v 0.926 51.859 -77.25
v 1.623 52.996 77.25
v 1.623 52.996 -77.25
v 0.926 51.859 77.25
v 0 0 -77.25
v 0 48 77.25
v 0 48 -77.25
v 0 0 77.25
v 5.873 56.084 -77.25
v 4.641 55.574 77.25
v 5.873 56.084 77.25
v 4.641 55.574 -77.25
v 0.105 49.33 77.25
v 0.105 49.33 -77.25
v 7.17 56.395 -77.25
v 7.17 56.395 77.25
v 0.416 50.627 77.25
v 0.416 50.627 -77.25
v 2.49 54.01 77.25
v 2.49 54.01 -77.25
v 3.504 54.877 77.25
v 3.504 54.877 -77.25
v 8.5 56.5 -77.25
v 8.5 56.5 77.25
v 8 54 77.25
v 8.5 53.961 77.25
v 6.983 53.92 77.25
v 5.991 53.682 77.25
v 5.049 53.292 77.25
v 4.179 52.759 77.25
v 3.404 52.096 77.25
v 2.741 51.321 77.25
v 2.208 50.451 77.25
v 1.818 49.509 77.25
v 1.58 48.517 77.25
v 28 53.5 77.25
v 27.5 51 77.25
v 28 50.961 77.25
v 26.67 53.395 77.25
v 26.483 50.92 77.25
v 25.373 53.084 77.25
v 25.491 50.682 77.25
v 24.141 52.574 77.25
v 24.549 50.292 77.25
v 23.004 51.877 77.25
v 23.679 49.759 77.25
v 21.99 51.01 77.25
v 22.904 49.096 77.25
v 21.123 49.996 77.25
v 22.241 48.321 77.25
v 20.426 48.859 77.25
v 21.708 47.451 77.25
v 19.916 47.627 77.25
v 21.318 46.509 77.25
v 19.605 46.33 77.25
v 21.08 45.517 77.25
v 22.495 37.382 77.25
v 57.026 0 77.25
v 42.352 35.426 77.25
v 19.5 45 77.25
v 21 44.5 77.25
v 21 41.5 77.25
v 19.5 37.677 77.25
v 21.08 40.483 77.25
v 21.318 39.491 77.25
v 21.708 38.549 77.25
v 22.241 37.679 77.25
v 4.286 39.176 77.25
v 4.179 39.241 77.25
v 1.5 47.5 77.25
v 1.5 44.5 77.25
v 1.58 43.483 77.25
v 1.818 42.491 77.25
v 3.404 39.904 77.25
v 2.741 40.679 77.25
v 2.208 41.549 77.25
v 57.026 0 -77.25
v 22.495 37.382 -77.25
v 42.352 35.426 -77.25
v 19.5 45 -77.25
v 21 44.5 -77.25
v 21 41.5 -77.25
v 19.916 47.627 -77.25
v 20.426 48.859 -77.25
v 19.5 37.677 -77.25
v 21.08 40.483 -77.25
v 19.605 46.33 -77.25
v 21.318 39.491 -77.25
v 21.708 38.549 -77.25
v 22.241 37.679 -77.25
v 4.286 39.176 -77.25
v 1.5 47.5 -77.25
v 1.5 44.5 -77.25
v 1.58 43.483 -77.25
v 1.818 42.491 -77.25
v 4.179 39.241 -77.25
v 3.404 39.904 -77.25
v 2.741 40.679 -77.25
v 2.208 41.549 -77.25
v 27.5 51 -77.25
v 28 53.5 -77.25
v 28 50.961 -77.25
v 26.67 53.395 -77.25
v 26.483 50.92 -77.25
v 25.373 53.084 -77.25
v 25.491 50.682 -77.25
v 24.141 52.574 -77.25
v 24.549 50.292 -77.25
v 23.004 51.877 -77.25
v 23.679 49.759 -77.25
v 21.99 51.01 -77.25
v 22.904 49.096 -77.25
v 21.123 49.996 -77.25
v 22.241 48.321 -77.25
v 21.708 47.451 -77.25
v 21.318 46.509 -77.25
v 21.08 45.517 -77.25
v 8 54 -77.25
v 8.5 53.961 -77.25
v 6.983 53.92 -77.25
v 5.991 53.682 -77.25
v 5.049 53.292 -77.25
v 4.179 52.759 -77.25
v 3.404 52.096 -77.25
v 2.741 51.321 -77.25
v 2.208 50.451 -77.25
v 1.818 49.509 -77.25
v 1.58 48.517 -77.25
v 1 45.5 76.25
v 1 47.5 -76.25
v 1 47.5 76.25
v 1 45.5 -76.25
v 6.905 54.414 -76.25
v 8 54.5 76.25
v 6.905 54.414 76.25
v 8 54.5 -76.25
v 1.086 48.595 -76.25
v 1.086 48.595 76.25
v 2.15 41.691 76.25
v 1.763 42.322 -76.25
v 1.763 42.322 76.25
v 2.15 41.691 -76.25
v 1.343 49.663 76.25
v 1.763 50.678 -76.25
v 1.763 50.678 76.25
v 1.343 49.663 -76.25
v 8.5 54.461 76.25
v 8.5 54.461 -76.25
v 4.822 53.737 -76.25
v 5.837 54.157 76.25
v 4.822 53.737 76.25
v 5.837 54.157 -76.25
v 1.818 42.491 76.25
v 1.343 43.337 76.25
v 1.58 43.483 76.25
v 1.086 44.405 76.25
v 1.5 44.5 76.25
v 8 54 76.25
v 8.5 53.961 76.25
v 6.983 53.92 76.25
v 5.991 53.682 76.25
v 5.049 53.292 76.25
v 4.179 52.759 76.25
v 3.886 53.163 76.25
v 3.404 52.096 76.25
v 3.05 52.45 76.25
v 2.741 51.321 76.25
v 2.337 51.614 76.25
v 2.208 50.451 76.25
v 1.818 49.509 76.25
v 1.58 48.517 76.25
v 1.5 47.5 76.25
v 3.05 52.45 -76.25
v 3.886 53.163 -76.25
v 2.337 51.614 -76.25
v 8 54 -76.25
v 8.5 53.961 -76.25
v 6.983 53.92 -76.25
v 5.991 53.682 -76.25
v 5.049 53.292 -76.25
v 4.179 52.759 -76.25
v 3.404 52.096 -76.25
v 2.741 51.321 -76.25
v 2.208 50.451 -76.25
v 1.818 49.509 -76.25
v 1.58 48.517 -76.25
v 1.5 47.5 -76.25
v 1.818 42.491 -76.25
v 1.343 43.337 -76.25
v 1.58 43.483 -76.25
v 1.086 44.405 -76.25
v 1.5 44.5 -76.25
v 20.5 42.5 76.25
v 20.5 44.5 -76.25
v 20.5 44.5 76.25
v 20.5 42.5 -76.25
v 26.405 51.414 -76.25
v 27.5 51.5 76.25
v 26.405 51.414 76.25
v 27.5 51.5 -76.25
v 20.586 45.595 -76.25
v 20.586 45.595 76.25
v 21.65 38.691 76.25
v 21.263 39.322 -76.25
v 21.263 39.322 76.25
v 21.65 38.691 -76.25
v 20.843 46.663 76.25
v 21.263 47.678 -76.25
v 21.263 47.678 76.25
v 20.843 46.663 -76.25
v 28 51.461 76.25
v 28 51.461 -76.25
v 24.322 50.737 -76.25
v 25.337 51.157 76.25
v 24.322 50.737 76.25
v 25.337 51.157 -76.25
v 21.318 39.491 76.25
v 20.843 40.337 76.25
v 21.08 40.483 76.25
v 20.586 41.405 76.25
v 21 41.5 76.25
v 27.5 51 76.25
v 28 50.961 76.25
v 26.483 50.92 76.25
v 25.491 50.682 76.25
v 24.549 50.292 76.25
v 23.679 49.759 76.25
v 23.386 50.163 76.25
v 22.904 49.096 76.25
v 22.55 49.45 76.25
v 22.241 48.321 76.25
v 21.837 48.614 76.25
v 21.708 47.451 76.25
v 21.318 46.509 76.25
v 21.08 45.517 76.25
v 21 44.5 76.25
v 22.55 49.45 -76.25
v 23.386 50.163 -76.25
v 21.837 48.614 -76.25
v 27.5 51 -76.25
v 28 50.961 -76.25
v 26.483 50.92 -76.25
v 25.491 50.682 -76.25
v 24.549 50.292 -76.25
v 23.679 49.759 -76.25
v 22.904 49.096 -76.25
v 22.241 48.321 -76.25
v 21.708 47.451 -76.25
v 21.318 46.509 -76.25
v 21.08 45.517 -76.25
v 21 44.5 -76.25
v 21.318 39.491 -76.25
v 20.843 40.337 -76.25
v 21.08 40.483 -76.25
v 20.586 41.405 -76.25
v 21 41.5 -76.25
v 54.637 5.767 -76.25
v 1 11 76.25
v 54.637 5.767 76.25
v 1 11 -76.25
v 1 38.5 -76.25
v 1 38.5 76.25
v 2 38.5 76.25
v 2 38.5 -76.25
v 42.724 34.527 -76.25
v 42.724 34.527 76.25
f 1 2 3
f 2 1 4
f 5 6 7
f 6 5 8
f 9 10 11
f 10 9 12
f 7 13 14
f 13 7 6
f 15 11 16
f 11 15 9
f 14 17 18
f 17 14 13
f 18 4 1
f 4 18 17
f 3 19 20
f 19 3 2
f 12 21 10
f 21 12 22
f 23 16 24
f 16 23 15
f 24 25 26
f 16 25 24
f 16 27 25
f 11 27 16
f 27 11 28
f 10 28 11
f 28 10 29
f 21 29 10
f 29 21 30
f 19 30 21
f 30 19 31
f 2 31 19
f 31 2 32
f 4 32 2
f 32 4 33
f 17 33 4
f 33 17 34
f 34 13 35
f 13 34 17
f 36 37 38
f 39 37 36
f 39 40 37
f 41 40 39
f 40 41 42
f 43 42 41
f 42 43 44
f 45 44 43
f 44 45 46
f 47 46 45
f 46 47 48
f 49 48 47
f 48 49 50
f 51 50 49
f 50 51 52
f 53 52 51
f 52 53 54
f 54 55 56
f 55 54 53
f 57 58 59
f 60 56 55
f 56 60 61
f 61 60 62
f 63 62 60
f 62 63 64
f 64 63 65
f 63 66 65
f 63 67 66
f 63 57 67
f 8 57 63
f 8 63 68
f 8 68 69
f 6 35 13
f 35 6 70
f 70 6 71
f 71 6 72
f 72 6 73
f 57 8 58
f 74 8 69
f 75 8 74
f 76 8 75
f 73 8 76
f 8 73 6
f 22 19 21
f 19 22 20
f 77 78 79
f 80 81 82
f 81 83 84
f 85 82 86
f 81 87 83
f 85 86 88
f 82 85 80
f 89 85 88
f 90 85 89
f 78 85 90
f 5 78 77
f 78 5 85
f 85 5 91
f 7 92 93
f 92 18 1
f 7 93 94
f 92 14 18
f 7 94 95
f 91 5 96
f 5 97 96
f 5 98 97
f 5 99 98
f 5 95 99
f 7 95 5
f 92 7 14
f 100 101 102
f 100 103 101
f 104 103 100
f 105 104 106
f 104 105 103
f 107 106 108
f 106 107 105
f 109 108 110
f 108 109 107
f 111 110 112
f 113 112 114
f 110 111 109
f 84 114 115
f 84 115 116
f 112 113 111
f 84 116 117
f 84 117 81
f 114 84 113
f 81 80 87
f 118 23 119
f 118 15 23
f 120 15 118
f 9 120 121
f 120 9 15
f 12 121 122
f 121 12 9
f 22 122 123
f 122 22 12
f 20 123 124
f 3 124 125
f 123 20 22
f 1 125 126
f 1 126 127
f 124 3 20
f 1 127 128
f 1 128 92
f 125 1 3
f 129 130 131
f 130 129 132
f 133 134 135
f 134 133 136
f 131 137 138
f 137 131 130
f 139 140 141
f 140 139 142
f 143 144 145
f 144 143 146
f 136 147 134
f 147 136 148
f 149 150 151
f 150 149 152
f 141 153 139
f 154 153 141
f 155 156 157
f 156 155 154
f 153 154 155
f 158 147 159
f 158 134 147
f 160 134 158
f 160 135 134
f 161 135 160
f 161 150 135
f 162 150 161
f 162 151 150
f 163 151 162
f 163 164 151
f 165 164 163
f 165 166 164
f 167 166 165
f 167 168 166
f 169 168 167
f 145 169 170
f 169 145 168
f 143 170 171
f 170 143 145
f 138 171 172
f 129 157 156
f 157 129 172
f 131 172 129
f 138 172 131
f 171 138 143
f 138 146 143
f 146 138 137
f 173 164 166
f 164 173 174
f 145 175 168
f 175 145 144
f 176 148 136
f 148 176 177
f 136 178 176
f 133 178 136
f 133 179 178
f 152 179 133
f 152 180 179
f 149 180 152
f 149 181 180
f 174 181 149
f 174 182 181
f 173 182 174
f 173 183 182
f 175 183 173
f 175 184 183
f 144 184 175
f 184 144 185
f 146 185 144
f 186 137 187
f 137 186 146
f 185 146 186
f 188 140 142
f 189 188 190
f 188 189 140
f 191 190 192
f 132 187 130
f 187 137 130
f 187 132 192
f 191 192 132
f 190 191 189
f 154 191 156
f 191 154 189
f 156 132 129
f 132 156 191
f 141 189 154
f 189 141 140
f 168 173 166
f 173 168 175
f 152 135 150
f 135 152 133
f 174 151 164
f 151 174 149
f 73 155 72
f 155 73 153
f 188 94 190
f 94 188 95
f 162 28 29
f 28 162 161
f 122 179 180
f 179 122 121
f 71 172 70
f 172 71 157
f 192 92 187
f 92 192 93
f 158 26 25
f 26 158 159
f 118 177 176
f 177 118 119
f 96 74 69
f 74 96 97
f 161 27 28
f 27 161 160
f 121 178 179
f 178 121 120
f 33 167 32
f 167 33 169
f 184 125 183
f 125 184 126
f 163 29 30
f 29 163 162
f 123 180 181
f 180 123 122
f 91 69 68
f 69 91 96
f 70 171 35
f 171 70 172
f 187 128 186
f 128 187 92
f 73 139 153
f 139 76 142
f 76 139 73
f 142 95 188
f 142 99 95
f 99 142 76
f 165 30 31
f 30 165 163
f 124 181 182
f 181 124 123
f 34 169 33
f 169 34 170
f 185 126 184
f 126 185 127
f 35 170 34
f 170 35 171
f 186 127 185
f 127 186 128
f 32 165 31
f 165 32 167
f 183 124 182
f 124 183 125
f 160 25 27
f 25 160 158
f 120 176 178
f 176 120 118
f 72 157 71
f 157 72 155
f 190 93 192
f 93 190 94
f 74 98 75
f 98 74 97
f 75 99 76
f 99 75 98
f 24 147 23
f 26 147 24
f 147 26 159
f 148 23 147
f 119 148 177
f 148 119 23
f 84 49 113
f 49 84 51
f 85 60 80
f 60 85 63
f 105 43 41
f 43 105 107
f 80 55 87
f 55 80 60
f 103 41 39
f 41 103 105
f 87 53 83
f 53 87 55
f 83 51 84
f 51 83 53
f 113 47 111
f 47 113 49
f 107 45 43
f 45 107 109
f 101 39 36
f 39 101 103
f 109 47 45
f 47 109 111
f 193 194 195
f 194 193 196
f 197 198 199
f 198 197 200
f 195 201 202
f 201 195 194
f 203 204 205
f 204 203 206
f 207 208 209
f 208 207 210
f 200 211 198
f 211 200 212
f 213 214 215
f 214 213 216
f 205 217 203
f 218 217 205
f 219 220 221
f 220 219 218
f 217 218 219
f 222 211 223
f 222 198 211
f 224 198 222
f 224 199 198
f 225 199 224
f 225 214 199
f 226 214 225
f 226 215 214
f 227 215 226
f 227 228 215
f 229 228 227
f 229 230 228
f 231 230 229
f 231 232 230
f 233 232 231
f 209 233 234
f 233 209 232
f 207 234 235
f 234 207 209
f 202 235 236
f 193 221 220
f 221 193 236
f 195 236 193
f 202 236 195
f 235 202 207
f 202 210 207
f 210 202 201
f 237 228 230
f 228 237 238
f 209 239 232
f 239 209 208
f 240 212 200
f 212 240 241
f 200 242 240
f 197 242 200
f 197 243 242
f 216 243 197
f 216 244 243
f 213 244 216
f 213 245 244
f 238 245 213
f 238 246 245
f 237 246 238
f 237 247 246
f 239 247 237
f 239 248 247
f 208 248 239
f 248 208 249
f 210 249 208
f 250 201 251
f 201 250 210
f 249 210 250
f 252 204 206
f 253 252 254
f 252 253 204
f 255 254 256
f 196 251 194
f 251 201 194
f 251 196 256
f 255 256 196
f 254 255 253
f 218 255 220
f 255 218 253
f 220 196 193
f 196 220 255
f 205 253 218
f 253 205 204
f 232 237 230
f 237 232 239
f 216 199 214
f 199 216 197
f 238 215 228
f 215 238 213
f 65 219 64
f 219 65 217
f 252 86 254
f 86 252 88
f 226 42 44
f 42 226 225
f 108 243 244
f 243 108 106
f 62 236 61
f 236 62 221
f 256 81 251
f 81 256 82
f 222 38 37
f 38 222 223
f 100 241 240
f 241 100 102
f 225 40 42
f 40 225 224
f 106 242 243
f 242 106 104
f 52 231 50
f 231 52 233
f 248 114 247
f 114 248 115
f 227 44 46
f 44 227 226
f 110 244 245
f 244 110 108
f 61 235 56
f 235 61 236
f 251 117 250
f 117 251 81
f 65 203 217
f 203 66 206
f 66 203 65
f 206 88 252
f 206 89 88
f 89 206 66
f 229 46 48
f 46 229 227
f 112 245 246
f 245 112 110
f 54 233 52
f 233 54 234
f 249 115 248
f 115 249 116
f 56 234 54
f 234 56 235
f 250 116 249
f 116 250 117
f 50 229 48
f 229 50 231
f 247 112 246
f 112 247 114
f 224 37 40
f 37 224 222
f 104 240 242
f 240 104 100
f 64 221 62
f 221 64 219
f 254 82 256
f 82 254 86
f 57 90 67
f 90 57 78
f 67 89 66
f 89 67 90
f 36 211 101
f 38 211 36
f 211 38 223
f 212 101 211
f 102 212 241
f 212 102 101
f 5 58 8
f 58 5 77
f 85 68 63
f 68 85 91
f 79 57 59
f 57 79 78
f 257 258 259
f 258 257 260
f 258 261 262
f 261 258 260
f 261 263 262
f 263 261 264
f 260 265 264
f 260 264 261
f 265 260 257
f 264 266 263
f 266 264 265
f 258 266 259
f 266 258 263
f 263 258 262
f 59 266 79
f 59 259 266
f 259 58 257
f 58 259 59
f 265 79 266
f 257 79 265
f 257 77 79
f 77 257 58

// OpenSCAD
// Wall Mounted Multi Card Holder Extention
// By Brian Khuu 2022-04-22
// Dev Note: Originally for businesscard, but modified for OffersAndNeeds 3D printed wall
$fn = 40;

print_layer_height = 0.2; //< This is the value you used when printing the main holder. This will indicate the amount of gap needed for the mounting slot

// Index Card
// 76 x 127mm (More like 126mm width when measured)
businesscard_width = 152.0+0.5; // 127mm (Plus 0.5 tol)
businesscard_height = 102.0+0.5; // 76mm (add 0.5mm tol)
businesscard_thickness = 2.5; // 0.25mm for thin paper cards. 0.8mm for thick plastic cards. We need to add extra thickness to account for layer droop

// Holder
wall_spacing = 2;
wall_card_grip = 20;

// Calc
wall_base = print_layer_height*3+0.1;
wall_top = print_layer_height*3+0.1;
wall_height = wall_base + businesscard_thickness + wall_top*2;

// Main Holder
holder_thickness = 1.0;
holder_slot_depth = businesscard_thickness*11; // 10 business cards (1 businesscard tolerance)
holder_slot_shift = 10;

// Pen Holder
penHolder_thickness = 1;
penHolder_pendia = 13;

module penholder() {
    intersection()
    {

        penHolder_outerdia = penHolder_pendia+penHolder_thickness*2+2;
        penHolder_outerGripDia = penHolder_pendia;
        penHolder_innerdia = penHolder_pendia+1;
        difference()
        {
            hull()
            {
                translate([0,holder_slot_depth+holder_thickness*2+holder_slot_shift,penHolder_outerdia/2])
                    rotate([0,90,0])
                        cylinder(d=penHolder_outerdia, h=(businesscard_width+holder_thickness*2), center=true);
                translate([0,holder_slot_depth+holder_thickness*2+holder_slot_shift+penHolder_outerdia/2,penHolder_outerdia/2])
                    rotate([0,90,0])
                        cylinder(d=penHolder_outerdia, h=(businesscard_width+holder_thickness*2), center=true);
            }
            hull()
            {
                translate([0,holder_slot_depth+holder_thickness*2+holder_slot_shift+penHolder_innerdia/2+penHolder_thickness-2,penHolder_innerdia/2+penHolder_thickness])
                    rotate([0,90,0])
                        cylinder(d=penHolder_innerdia, h=businesscard_width, center=true);
                translate([0,holder_slot_depth+holder_thickness*2+holder_slot_shift+penHolder_innerdia/2+penHolder_thickness,penHolder_innerdia/2+penHolder_thickness])
                    rotate([0,90,0])
                        cylinder(d=penHolder_innerdia, h=businesscard_width, center=true);
            }
            hull()
            {
                translate([0,holder_slot_depth+holder_thickness*2+holder_slot_shift+penHolder_innerdia/2+penHolder_thickness-3,penHolder_innerdia/2+penHolder_thickness])
                    rotate([0,90,0])
                        cylinder(d=penHolder_outerGripDia, h=businesscard_width+holder_thickness*2+0.1, center=true);
                translate([0,holder_slot_depth+holder_thickness*2+holder_slot_shift+penHolder_innerdia/2+penHolder_thickness,penHolder_innerdia/2+penHolder_thickness])
                    rotate([0,90,0])
                        cylinder(d=penHolder_outerGripDia, h=businesscard_width+holder_thickness*2+0.1, center=true);
            }
        }
        translate([0,holder_slot_depth+holder_thickness*2+holder_slot_shift+penHolder_thickness,penHolder_outerdia/4])
        cube([businesscard_width+holder_thickness*2,penHolder_outerdia*2,penHolder_outerdia/2],center=true);
    }

}

color("SaddleBrown")
rotate([0,90,0])
difference()
{
    // Bulk
    union()
    {
        hull()
        {
            translate([-(businesscard_width+holder_thickness*2)/2, 0, businesscard_height-holder_thickness])
                cube([(businesscard_width+holder_thickness*2), holder_slot_depth+holder_thickness*2, 1]);
            translate([-(businesscard_width+holder_thickness*2)/2, 0, 0])
                cube([(businesscard_width+holder_thickness*2), holder_slot_depth+holder_thickness*2+holder_slot_shift, 1]);
                
            
        }
        // Pen Cut
        penholder();
        translate([0, -3, penHolder_pendia + penHolder_pendia/2])
            penholder();
        
    }

    // Card
    hull()
    {
        translate([-(businesscard_width)/2, holder_thickness, holder_thickness+businesscard_height])
            cube([(businesscard_width), holder_slot_depth, 1]);
        translate([-(businesscard_width)/2, holder_thickness+holder_slot_shift, holder_thickness])
            cube([(businesscard_width), holder_slot_depth, 1]);
    }
    
    // Slot Cut
    hull()
    {
        translate([0, (holder_slot_depth+holder_thickness*3)/2, businesscard_height/2])
            rotate([-45/2,0,0])
            cube([(businesscard_width*2), holder_slot_depth*2, 1], center=true);
        translate([0, (holder_slot_depth+holder_thickness*3)/2, businesscard_height])
            rotate([0,0,0])
            cube([(businesscard_width*2), holder_slot_depth*2, 1], center=true);
    }
}
